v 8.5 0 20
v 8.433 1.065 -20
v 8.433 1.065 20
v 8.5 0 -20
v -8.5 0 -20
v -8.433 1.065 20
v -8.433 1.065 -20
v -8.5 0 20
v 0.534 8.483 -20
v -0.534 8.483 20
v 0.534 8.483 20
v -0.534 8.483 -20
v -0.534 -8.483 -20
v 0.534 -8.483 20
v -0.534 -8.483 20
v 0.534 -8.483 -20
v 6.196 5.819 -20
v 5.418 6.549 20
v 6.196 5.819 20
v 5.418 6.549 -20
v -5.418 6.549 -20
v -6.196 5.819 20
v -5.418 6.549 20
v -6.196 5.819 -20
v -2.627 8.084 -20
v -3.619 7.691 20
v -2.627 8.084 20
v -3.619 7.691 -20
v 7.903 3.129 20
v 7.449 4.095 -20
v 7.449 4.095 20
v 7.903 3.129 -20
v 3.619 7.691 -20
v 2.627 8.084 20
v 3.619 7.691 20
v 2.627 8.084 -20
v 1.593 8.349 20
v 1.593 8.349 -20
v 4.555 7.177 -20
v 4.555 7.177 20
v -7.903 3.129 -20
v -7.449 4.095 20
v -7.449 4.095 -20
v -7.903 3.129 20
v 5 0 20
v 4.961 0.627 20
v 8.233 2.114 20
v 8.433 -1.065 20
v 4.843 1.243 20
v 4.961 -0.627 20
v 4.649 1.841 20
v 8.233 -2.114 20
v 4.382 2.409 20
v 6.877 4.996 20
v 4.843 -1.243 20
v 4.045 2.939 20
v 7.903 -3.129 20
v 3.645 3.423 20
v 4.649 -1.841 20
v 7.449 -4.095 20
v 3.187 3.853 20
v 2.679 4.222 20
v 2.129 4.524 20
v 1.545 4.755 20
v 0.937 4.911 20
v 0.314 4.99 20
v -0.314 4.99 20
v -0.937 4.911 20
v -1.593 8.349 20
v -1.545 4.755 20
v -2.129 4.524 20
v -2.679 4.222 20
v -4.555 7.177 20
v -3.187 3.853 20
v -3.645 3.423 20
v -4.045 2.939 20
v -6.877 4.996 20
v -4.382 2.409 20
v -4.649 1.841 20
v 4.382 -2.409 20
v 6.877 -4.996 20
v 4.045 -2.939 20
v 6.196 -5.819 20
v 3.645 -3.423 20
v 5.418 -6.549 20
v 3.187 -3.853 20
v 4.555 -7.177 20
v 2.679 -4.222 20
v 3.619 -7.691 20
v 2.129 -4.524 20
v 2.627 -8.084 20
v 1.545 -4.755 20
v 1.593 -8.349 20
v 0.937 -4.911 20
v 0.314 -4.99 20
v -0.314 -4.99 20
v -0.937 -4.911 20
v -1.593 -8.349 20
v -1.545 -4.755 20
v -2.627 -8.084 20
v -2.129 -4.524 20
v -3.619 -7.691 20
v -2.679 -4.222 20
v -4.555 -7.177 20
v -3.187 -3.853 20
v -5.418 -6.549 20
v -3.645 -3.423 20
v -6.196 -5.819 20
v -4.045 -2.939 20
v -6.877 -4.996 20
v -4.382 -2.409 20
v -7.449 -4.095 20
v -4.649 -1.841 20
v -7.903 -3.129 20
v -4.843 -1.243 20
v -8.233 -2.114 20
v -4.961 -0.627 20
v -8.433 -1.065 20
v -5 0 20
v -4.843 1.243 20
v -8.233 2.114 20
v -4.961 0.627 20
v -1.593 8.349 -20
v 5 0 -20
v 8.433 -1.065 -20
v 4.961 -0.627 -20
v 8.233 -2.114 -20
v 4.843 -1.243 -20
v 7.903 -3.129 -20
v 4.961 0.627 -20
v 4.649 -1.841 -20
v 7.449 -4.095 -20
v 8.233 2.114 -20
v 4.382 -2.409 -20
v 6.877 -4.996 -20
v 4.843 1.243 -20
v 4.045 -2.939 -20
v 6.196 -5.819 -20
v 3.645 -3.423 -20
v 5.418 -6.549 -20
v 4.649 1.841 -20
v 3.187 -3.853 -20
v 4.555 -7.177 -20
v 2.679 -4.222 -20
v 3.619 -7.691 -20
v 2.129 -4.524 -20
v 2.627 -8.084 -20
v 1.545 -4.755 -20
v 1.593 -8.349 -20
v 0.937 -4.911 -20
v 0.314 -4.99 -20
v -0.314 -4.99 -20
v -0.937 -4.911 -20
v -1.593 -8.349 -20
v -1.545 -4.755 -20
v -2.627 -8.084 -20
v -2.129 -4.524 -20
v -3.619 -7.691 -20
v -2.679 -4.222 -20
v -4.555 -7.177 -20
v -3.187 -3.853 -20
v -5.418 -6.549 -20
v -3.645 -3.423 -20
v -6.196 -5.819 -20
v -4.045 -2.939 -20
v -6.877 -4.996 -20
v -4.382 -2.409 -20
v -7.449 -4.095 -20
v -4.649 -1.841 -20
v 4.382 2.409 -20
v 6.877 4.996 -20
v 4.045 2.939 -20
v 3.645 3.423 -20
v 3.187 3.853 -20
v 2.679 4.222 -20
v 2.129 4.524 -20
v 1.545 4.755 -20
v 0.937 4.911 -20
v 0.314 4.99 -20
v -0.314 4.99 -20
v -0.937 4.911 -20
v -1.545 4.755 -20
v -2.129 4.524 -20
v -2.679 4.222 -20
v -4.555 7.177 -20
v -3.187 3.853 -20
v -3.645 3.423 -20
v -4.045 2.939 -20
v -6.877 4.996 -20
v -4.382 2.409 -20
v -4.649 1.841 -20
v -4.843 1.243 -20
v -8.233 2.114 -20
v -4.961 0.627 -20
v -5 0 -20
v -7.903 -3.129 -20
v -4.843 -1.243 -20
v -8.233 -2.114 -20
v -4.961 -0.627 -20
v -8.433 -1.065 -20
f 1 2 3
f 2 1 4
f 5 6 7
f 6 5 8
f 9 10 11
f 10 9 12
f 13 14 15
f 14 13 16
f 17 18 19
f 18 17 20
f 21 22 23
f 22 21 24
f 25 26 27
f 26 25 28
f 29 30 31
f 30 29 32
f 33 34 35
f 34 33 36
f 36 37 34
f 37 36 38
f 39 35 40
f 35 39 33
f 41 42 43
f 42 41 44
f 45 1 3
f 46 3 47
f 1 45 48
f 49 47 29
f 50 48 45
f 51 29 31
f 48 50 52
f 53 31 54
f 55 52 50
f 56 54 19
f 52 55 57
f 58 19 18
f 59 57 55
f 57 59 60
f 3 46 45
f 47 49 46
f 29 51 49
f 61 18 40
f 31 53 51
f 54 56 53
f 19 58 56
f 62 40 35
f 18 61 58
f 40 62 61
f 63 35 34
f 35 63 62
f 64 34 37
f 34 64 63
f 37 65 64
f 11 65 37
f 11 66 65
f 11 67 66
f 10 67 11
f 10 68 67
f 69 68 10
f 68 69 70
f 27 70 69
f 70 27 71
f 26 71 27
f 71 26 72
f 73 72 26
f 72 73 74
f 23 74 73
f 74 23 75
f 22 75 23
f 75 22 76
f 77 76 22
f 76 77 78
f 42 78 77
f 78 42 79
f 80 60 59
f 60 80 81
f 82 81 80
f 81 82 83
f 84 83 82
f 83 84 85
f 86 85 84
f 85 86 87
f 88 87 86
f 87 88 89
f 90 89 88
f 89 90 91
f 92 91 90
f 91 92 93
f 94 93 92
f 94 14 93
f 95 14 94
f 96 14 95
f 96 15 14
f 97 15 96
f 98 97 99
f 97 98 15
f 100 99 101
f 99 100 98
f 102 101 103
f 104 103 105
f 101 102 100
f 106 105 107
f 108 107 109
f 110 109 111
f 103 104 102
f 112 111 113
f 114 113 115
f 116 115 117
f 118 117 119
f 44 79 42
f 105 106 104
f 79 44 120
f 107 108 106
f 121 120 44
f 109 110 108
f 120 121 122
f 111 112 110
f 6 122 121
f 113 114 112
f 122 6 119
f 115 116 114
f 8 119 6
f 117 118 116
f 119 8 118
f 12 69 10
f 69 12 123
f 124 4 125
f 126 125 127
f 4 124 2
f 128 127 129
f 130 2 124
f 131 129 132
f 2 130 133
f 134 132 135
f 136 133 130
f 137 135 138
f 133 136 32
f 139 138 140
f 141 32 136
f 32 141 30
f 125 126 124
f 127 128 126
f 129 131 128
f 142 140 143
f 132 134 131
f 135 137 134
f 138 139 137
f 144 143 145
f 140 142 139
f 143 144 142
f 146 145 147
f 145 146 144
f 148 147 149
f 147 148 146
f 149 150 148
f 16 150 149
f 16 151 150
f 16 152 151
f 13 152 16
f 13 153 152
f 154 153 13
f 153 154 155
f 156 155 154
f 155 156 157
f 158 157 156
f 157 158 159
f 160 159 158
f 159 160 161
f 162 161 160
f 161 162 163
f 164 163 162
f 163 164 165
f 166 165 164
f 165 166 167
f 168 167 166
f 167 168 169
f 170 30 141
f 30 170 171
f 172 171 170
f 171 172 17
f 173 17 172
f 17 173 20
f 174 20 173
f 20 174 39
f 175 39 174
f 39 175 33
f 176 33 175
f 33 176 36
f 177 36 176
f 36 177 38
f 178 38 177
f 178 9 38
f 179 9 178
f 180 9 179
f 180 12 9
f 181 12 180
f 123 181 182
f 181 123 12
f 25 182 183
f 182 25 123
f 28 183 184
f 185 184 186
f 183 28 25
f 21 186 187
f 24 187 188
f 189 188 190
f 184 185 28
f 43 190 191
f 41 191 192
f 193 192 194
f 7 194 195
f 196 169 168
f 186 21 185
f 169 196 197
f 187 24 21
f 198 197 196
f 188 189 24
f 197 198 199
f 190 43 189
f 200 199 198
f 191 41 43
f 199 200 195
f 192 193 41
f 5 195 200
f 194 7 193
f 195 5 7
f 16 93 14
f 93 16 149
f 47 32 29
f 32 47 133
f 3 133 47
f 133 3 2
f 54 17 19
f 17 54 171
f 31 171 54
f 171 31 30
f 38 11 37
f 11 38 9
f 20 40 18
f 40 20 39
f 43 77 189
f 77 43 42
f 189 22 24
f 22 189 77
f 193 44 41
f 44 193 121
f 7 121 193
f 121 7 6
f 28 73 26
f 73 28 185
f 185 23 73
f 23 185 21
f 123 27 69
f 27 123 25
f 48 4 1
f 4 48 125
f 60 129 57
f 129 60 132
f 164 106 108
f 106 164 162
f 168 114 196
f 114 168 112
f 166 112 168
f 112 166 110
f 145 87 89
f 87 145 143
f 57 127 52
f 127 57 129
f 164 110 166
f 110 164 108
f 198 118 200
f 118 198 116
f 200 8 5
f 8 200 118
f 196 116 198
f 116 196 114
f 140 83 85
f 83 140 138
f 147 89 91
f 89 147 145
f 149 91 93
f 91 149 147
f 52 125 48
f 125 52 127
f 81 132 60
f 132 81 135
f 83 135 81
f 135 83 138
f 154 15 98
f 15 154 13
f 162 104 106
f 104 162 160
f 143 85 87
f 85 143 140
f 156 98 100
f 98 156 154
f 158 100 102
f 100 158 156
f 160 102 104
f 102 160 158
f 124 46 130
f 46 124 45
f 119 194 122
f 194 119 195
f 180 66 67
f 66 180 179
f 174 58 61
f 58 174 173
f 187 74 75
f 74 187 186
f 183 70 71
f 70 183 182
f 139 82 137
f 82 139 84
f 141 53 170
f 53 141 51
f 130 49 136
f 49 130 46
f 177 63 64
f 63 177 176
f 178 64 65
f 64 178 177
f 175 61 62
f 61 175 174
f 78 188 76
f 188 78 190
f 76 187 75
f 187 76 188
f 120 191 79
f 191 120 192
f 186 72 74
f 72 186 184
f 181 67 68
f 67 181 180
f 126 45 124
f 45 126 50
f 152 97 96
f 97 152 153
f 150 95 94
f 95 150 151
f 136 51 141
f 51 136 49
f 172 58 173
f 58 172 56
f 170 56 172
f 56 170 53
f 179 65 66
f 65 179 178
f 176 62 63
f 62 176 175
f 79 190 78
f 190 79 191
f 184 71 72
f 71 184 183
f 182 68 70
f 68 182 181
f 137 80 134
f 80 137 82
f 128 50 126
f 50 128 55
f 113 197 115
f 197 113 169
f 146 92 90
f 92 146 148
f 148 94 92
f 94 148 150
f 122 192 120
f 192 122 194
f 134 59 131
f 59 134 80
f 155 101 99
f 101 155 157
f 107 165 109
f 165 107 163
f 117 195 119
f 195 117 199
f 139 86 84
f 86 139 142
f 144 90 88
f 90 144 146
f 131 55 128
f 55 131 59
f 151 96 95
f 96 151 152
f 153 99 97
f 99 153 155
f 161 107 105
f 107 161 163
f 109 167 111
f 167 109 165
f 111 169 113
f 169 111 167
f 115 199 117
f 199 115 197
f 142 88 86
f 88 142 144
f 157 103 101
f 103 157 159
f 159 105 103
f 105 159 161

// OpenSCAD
$fn = 50;


difference() {
	union() {
		translate(v = [0, 0, -20.0000000000]) {
			cylinder(h = 40, r = 8.5000000000);
		}
	}
	union() {
		translate(v = [0, 0, -100.0000000000]) {
			cylinder(h = 200, r = 5.0000000000);
		}
	}
}
